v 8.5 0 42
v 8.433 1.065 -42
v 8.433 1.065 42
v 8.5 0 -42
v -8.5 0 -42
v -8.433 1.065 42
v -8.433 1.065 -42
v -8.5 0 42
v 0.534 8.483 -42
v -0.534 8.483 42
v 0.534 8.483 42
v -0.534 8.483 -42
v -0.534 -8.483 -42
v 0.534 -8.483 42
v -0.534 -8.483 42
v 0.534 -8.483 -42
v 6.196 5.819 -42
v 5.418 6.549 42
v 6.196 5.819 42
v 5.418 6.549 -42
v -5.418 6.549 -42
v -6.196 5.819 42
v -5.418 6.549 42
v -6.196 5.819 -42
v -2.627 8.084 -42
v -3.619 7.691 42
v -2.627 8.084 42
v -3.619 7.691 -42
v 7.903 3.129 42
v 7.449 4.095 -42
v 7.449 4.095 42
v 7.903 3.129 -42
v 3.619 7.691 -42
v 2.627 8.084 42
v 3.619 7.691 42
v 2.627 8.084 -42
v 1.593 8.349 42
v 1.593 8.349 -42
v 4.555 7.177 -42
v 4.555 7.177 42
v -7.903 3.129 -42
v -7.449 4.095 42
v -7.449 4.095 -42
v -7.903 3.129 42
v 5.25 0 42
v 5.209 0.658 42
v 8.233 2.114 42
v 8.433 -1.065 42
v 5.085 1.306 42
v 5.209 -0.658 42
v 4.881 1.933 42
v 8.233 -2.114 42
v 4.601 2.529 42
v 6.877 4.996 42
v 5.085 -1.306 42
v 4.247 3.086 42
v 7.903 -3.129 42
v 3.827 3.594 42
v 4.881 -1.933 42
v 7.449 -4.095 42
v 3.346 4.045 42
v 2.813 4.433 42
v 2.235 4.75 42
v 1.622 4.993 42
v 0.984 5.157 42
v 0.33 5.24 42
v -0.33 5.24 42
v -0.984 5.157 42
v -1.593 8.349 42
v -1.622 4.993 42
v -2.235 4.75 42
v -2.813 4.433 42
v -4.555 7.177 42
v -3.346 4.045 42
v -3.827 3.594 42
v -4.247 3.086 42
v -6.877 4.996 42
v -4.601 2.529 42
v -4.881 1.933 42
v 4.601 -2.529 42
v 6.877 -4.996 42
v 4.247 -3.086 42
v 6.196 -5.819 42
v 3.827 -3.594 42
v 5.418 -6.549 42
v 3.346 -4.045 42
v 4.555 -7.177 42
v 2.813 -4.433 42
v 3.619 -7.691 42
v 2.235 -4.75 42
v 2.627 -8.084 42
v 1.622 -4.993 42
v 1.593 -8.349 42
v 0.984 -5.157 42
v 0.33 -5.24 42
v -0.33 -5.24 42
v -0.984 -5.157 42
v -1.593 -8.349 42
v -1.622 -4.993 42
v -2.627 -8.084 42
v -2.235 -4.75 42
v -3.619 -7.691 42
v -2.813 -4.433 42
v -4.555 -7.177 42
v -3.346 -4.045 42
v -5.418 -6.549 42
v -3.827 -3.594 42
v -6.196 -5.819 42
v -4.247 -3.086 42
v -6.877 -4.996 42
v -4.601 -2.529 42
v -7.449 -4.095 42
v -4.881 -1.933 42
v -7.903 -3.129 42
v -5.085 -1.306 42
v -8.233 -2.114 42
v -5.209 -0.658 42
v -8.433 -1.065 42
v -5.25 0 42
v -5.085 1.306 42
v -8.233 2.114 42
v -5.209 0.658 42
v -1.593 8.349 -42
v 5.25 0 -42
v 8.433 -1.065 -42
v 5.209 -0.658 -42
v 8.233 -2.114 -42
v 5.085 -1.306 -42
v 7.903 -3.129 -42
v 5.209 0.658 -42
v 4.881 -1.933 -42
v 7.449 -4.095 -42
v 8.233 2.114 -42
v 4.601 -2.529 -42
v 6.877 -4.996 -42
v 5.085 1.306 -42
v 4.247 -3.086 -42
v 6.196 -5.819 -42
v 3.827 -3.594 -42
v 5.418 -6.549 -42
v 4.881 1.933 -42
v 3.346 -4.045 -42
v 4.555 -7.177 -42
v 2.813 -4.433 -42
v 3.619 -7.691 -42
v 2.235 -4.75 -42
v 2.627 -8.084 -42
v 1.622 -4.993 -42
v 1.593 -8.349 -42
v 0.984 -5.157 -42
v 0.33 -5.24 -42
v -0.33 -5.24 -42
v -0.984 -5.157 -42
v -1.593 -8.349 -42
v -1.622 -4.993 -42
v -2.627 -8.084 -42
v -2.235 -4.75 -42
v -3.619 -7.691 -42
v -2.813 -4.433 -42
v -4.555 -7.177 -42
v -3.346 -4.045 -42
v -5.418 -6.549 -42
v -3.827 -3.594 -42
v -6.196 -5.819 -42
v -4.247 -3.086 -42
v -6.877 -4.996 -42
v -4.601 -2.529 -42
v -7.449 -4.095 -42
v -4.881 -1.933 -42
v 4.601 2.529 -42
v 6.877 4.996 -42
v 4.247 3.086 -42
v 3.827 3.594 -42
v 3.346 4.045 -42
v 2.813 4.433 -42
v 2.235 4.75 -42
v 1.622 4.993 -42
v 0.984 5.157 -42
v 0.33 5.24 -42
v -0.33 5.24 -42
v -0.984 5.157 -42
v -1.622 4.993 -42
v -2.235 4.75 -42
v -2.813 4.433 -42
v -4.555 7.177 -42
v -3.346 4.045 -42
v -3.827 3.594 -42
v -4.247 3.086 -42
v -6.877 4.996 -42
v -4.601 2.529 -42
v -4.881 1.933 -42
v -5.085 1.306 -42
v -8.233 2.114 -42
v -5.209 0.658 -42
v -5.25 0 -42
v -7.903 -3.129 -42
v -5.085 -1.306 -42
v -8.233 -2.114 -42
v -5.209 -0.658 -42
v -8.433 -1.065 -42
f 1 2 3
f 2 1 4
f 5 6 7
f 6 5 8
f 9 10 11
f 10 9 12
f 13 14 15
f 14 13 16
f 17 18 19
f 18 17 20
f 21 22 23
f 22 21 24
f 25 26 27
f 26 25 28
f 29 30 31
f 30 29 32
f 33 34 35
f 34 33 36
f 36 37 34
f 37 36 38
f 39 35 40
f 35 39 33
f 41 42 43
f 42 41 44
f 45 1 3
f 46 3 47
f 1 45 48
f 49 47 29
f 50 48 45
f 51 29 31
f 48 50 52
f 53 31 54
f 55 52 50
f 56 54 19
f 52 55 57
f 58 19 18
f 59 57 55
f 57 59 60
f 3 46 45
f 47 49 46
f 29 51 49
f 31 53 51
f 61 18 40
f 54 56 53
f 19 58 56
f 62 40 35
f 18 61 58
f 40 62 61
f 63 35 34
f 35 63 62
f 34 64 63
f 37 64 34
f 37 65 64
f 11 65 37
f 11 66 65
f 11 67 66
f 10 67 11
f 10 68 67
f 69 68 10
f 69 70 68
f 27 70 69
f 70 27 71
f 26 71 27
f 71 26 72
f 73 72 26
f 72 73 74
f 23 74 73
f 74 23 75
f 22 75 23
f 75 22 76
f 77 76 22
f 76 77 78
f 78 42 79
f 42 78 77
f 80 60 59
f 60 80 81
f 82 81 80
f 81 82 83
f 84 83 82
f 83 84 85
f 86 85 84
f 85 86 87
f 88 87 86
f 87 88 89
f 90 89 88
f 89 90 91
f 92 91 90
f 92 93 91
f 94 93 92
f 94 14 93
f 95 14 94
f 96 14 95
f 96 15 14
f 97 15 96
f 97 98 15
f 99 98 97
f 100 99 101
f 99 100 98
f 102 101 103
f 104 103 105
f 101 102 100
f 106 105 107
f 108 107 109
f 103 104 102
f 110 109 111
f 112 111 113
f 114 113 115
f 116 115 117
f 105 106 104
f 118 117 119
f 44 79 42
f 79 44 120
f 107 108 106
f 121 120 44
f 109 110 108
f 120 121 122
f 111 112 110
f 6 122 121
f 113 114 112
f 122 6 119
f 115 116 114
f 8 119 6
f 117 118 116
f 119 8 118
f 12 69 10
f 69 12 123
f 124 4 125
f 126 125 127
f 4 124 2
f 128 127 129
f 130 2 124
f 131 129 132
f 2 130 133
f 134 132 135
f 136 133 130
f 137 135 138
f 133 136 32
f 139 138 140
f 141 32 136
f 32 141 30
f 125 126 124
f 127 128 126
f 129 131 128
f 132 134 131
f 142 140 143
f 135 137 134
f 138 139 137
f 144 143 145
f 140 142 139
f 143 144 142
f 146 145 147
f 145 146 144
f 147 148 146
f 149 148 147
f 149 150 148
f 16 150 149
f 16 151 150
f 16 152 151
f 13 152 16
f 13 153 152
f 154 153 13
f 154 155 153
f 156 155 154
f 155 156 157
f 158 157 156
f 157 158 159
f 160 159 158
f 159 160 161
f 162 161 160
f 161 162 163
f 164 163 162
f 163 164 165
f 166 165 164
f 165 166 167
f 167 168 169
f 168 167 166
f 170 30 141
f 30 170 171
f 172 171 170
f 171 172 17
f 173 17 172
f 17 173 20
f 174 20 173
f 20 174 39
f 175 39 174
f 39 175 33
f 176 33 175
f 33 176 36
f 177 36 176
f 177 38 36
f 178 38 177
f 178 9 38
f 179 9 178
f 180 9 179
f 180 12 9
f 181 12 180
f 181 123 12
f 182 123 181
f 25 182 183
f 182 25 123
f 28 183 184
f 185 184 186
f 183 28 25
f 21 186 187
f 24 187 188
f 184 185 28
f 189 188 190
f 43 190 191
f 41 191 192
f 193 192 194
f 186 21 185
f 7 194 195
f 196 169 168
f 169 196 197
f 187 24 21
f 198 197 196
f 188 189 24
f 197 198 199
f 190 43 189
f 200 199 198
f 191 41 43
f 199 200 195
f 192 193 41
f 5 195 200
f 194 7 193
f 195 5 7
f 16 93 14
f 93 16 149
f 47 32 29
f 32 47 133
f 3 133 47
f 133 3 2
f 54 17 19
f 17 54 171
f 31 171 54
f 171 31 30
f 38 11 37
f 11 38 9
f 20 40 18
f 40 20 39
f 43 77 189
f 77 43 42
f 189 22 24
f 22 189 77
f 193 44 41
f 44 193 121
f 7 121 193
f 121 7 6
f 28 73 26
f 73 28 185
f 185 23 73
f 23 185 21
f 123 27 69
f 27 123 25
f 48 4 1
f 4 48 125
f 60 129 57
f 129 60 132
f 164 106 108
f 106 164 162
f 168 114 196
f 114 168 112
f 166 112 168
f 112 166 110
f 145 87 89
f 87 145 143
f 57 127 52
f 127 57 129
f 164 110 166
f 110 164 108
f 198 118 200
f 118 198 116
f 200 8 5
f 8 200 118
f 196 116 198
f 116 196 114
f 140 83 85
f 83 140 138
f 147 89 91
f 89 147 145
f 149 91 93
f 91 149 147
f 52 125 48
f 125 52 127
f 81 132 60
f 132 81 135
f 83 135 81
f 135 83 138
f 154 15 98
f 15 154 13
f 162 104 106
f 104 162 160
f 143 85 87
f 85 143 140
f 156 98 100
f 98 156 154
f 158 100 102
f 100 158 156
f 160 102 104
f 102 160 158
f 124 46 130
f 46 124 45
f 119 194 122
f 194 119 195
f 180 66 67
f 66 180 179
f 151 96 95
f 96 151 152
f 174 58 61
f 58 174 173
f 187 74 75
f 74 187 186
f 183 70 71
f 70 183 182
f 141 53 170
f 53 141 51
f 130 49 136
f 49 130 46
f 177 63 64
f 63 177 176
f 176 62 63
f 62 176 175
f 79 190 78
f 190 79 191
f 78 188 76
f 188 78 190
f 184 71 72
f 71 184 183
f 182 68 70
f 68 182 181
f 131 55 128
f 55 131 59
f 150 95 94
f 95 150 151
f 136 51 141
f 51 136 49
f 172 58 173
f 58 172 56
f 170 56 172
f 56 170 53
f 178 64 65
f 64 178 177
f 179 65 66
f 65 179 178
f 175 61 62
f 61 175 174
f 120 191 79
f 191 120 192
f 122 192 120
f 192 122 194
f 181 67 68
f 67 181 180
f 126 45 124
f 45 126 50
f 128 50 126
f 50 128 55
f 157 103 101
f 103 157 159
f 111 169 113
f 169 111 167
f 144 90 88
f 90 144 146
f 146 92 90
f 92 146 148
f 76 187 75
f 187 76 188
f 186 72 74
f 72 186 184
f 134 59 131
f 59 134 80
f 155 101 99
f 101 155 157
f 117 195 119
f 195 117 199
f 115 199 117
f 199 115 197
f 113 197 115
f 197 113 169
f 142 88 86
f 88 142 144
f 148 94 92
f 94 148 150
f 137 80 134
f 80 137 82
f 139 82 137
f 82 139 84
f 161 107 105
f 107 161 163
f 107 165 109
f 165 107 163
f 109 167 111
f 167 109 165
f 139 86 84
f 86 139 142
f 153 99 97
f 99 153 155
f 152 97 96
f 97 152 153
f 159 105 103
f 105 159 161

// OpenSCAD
$fn = 50;


difference() {
	union() {
		translate(v = [0, 0, -42.0000000000]) {
			cylinder(h = 84, r = 8.5000000000);
		}
	}
	union() {
		translate(v = [0, 0, -100.0000000000]) {
			cylinder(h = 200, r = 5.2500000000);
		}
	}
}
